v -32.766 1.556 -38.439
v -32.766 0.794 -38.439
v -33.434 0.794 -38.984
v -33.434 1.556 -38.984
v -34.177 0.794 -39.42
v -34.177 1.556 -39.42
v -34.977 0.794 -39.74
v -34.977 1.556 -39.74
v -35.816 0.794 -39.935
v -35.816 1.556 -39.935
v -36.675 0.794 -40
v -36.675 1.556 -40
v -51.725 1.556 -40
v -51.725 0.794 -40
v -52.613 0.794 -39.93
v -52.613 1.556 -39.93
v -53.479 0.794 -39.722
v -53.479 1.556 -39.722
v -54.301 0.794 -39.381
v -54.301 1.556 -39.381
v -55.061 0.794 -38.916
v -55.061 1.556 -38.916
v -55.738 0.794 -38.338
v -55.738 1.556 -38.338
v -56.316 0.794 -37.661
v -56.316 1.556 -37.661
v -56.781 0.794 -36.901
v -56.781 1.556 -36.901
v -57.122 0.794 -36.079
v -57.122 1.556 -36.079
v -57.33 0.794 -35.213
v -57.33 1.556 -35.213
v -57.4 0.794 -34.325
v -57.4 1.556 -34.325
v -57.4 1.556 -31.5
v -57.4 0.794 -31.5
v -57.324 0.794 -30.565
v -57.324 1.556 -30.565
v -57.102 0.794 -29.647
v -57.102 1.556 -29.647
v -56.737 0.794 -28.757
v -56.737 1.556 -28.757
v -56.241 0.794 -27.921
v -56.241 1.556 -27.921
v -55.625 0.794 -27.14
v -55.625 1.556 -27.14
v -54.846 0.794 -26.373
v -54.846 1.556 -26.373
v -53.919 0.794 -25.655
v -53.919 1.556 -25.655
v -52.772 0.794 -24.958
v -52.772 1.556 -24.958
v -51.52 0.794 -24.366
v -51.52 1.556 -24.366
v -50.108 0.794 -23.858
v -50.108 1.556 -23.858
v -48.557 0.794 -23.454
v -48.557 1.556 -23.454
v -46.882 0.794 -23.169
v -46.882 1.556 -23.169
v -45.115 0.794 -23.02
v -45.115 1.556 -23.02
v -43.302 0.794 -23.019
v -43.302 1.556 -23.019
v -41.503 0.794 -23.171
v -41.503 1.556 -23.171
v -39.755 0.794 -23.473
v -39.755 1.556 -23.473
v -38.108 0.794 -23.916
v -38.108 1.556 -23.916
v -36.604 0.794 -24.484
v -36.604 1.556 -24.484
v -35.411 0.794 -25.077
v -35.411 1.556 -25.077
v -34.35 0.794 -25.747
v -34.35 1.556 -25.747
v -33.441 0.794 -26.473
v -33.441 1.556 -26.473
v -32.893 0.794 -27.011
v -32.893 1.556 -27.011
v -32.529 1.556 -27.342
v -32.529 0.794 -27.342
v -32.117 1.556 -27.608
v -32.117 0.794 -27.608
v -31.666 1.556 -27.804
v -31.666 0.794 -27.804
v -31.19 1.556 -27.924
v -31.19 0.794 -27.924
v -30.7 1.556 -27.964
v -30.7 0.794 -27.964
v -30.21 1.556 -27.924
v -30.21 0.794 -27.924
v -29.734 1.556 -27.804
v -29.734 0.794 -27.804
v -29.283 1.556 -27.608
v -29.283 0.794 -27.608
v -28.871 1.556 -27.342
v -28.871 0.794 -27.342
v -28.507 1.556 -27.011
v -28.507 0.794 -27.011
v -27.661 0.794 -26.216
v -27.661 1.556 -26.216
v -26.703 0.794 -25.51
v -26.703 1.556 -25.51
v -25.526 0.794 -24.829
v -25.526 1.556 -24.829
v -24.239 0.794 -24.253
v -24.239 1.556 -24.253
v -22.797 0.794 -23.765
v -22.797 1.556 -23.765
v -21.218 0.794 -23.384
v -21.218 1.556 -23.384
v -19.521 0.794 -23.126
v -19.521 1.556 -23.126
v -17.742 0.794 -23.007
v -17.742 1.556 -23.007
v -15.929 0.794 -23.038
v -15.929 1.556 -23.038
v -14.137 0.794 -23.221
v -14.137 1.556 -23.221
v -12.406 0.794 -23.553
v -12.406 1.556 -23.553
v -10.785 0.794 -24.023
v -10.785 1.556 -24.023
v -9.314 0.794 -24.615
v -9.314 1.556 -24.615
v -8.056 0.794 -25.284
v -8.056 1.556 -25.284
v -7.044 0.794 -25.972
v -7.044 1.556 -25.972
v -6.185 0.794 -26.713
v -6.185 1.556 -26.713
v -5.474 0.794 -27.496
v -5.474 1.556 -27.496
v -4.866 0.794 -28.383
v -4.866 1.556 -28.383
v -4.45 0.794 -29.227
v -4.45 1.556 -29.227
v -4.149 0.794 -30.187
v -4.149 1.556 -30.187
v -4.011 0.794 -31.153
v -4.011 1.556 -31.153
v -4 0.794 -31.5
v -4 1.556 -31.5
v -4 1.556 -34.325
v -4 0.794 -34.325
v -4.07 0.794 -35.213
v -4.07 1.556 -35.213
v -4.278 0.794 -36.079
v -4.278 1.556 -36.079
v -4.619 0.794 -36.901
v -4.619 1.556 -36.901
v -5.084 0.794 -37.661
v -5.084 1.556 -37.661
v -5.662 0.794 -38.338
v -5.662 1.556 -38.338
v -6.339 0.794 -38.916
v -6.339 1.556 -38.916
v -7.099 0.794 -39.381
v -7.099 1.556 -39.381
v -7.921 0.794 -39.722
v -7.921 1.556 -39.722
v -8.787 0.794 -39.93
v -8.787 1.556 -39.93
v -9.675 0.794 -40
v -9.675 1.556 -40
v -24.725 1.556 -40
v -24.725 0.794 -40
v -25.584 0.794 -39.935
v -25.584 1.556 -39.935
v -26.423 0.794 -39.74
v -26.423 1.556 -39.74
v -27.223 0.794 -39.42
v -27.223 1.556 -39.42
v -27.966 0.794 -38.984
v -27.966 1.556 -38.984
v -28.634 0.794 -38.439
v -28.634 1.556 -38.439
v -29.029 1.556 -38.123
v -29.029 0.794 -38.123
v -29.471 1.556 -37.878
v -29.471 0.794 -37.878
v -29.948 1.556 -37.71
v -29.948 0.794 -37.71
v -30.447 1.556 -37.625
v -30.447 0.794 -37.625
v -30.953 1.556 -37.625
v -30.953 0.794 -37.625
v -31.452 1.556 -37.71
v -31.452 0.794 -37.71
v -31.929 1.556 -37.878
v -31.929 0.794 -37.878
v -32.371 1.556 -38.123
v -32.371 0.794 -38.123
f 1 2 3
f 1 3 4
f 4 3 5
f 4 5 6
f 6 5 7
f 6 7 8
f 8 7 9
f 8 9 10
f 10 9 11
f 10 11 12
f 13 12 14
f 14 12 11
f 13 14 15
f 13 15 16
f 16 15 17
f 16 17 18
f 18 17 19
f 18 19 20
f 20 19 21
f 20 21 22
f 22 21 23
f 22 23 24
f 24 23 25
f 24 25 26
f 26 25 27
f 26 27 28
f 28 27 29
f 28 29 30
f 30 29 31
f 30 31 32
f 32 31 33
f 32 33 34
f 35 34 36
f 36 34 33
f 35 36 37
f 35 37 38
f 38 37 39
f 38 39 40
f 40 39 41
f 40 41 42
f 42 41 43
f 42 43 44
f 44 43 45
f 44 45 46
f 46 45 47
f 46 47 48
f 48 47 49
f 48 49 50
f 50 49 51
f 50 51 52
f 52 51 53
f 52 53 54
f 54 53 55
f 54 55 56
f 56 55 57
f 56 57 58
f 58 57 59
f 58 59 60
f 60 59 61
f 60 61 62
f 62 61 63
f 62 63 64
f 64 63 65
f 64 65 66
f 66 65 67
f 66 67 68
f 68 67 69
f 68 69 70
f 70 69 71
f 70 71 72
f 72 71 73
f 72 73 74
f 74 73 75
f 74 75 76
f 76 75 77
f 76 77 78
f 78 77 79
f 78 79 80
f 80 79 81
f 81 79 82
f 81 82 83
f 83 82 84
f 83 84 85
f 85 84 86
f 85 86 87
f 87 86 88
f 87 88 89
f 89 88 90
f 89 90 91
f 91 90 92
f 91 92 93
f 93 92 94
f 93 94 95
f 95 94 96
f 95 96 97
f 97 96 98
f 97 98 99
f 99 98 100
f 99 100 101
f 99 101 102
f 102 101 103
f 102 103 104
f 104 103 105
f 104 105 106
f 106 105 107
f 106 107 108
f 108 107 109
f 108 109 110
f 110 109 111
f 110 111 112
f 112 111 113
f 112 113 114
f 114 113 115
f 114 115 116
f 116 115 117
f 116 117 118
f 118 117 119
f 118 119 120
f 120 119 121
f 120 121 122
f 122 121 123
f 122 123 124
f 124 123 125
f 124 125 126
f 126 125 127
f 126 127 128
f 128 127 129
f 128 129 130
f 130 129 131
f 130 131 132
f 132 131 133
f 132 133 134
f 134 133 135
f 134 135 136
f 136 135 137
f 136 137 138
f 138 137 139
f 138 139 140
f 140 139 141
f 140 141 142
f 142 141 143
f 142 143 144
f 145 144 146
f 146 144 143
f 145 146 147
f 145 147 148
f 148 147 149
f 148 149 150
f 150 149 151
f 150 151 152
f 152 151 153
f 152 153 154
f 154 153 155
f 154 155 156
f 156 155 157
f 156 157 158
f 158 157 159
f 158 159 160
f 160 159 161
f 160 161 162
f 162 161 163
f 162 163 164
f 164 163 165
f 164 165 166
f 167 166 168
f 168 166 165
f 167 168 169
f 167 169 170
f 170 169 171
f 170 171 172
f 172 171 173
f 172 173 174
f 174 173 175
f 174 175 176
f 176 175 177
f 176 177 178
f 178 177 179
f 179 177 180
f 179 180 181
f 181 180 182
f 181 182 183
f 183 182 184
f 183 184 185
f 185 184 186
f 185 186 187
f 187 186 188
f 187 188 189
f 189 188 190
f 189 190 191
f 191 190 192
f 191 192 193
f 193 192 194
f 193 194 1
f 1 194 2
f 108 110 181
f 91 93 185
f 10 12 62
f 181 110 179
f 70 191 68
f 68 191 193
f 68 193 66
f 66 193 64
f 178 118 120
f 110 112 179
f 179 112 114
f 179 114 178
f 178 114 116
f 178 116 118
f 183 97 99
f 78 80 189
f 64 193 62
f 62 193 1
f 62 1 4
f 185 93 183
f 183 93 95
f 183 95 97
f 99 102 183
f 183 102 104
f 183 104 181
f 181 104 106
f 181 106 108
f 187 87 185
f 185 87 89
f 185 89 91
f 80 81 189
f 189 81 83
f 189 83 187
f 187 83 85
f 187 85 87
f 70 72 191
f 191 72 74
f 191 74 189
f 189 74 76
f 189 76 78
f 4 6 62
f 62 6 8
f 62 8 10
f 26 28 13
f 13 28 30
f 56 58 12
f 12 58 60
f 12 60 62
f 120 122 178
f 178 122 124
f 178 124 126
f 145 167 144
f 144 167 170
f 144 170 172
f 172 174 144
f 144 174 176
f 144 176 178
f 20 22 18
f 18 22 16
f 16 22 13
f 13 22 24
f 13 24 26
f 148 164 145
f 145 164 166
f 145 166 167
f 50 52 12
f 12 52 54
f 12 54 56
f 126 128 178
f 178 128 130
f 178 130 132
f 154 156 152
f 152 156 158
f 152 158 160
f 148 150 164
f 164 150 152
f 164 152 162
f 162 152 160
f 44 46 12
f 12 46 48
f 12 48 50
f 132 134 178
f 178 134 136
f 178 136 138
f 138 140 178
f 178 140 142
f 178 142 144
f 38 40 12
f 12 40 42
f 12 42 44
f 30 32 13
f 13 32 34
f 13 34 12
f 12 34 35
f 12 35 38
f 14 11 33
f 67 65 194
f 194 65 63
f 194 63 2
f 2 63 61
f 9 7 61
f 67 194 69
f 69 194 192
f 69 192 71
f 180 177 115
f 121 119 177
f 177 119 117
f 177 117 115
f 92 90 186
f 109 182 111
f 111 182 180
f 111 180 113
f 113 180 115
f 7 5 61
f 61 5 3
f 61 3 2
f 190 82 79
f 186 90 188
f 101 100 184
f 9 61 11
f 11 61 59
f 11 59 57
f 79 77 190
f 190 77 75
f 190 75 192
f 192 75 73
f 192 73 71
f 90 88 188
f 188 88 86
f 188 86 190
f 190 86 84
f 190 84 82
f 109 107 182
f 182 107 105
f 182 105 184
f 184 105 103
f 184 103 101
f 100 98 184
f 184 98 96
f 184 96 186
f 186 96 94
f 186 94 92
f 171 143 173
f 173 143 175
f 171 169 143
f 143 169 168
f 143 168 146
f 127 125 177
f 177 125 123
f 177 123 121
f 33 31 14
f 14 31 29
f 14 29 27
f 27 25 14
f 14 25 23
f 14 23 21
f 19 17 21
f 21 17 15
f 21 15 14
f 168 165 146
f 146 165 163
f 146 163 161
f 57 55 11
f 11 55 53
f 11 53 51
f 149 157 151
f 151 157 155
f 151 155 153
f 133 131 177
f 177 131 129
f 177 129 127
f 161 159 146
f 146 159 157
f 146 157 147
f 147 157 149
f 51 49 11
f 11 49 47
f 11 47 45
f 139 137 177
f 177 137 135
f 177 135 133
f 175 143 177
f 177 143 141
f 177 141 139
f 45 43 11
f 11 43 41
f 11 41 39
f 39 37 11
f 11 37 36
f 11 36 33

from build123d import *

# Parameters (mm, degrees)
SKETCH4_W                      = 118.3
SKETCH4_H                      = 40.5
BOSS_EXTRUDE1_DEPTH            = 12.7
CUT_EXTRUDE1_DEPTH             = 75.078168174
FILLET1_R                      = 3.175
LPATTERN1_COUNT                = 2
LPATTERN1_PITCH                = 27
FILLET1_OF_LPATTERN1_R         = 3.175
MIRROR1_DEPTH                  = 12.7
SKETCH8_R                      = 0.85
CUT_EXTRUDE2_DEPTH             = 75.078168329
MIRROR3_COPY_1_SKETCH_R        = 0.85
MIRROR3_COPY_1_DEPTH           = 75.078168329
SKETCH14_W                     = 118.3
SKETCH14_H                     = 0.96
SKETCH14_W_2                   = 4.5
SKETCH14_H_2                   = 40.5
CUT_EXTRUDE7_DEPTH             = 0.1
CUT_EXTRUDE8_DEPTH             = 2.35
MIRROR14_COPY_1_DEPTH          = 2.35
MIRROR16_COPY_1_DEPTH          = 2.35
MIRROR16_COPY_2_DEPTH          = 2.35
MIRROR16_COPY_3_DEPTH          = 2.35
CUT_EXTRUDE10_DEPTH            = 75.061089804
SKETCH20_W                     = 127.8
SKETCH20_H                     = 85.5
BOSS_EXTRUDE2_DEPTH            = 3.175
SKETCH22_W                     = 127.8
SKETCH22_H                     = 85.5
CUT_EXTRUDE11_DEPTH            = 78.923440062
CUT_EXTRUDE12_DEPTH            = 77.947080029
F_0_80_TAPPED_HOLE1_D          = 1.19126
MIRROR19_COPY_1_DEPTH          = 77.947080029
MIRROR19_COPY_2_D              = 1.19126
SKETCH26_W                     = 127.8
SKETCH26_H                     = 0.96
CUT_EXTRUDE13_DEPTH            = 3.175
SKETCH27_W                     = 127.8
SKETCH27_H                     = 0.96
CUT_EXTRUDE14_DEPTH            = 3.175
SKETCH29_W                     = 3.175
SKETCH29_H                     = 19.77
CUT_EXTRUDE15_DEPTH            = 0.82
F_0_80_TAPPED_HOLE2_AT_2_COUNT = 2
F_0_80_TAPPED_HOLE2_AT_2_PITCH = 10
SKETCH36_R                     = 0.8
CUT_EXTRUDE16_DEPTH            = 10
FILLET2_R                      = 1.5
FILLET3_R                      = 1.5
F_0_80_TAPPED_HOLE5_AT_2_COUNT = 2
F_0_80_TAPPED_HOLE5_AT_2_PITCH = 10
BOSS_EXTRUDE3_DEPTH            = 0.79375
SKETCH39_W                     = 144.663992048
SKETCH39_H                     = 99.796260463
CUT_EXTRUDE17_DEPTH            = 10
BOSS_EXTRUDE4_DEPTH            = 0.762
SKETCH42_W                     = 65.404927097
SKETCH42_H                     = 32.798348424
CUT_EXTRUDE18_DEPTH            = 10.762


# Read off the part's stored shape, not the designer's step: Mirror1
with BuildPart() as part:
    # Sketch4 → Boss-Extrude1 (new body)
    with BuildSketch(Plane(origin=(0, 0, 0), x_dir=(1, 0, 0), z_dir=(0, 1, 0))):
        with Locations((0, 22.5)):
            Rectangle(SKETCH4_W, SKETCH4_H)
    extrude(amount=BOSS_EXTRUDE1_DEPTH)

    # Sketch5 → Cut-Extrude1 (cut, through all)
    with BuildSketch(Plane(origin=(0, 12.7, 0), x_dir=(1, 0, 0), z_dir=(0, 1, 0))):
        with BuildLine():
            Line((-54.9, 13.5), (-54.9, 7.5))
            Line((-54.9, 7.5), (-33.5, 7.5))
            Line((-33.5, 7.5), (-33.5, 13.5))
            add(Edge.make_bspline(
                [(-33.5, 13.5), (-33.5, 19.5), (-44.2, 19.5), (-54.9, 19.5), (-54.9, 13.5)],
                knots=[3.141592654, 3.141592654, 3.141592654, 4.71238898, 4.71238898, 6.283185307, 6.283185307, 6.283185307], degree=2, weights=[1, 0.707106781, 1, 0.707106781, 1]))
        make_face()
        with BuildLine():
            Line((-54.9, 37.5), (-33.5, 37.5))
            Line((-33.5, 37.5), (-33.5, 31.5))
            add(Edge.make_bspline(
                [(-54.9, 31.5), (-54.9, 25.5), (-44.2, 25.5), (-33.5, 25.5), (-33.5, 31.5)],
                knots=[0, 0, 0, 1.570796327, 1.570796327, 3.141592654, 3.141592654, 3.141592654], degree=2, weights=[1, 0.707106781, 1, 0.707106781, 1]))
            Line((-54.9, 31.5), (-54.9, 37.5))
        make_face()
    cut_extrude1 = extrude(amount=-CUT_EXTRUDE1_DEPTH, mode=Mode.SUBTRACT)

    # Fillet1
    fillet1_edges = [part.edges().sort_by_distance(p)[0] for p in [
        (-33.5, 6.35, -7.5),
        (-54.9, 6.35, -7.5),
        (-54.9, 6.35, -37.5),
        (-33.5, 6.35, -37.5),
    ]]
    fillet(fillet1_edges, radius=FILLET1_R)

    # LPattern1: Cut-Extrude1 ×2
    with Locations(*[(i * LPATTERN1_PITCH, 0, 0) for i in range(1, LPATTERN1_COUNT)]):
        add(cut_extrude1, mode=Mode.SUBTRACT)

    # Fillet1 of LPattern1
    fillet1_of_lpattern1_edges = [part.edges().sort_by_distance(p)[0] for p in [
        (-6.5, 6.35, -7.5),
        (-27.9, 6.35, -7.5),
        (-27.9, 6.35, -37.5),
        (-6.5, 6.35, -37.5),
    ]]
    fillet(fillet1_of_lpattern1_edges, radius=FILLET1_OF_LPATTERN1_R)

    # Mirror1 outline → Mirror1 (cut)
    with BuildSketch(Plane(origin=(0, 0, 0), x_dir=(1, 0, 0), z_dir=(0, 1, 0))):
        with BuildLine():
            add(Edge.make_bspline(
                [(33.5, 13.5), (33.5, 19.5), (44.2, 19.5), (54.9, 19.5), (54.9, 13.5)],
                knots=[3.141592654, 3.141592654, 3.141592654, 4.71238898, 4.71238898, 6.283185307, 6.283185307, 6.283185307], degree=2, weights=[1, 0.707106781, 1, 0.707106781, 1]))
            Line((33.5, 13.5), (33.5, 10.675))
            ThreePointArc((33.5, 10.675), (34.42993597, 8.42993597), (36.675, 7.5))
            Line((36.675, 7.5), (51.725, 7.5))
            ThreePointArc((51.725, 7.5), (53.97006403, 8.42993597), (54.9, 10.675))
            Line((54.9, 10.675), (54.9, 13.5))
        make_face()
        with BuildLine():
            add(Edge.make_bspline(
                [(54.9, 31.5), (54.9, 25.5), (44.2, 25.5), (33.5, 25.5), (33.5, 31.5)],
                knots=[0, 0, 0, 1.570796327, 1.570796327, 3.141592654, 3.141592654, 3.141592654], degree=2, weights=[1, 0.707106781, 1, 0.707106781, 1]))
            Line((54.9, 31.5), (54.9, 34.325))
            ThreePointArc((54.9, 34.325), (53.97006403, 36.57006403), (51.725, 37.5))
            Line((51.725, 37.5), (36.675, 37.5))
            ThreePointArc((36.675, 37.5), (34.42993597, 36.57006403), (33.5, 34.325))
            Line((33.5, 34.325), (33.5, 31.5))
        make_face()
        with BuildLine():
            add(Edge.make_bspline(
                [(6.5, 13.5), (6.5, 19.5), (17.2, 19.5), (27.9, 19.5), (27.9, 13.5)],
                knots=[3.141592654, 3.141592654, 3.141592654, 4.71238898, 4.71238898, 6.283185307, 6.283185307, 6.283185307], degree=2, weights=[1, 0.707106781, 1, 0.707106781, 1]))
            Line((6.5, 13.5), (6.5, 10.675))
            ThreePointArc((6.5, 10.675), (7.42993597, 8.42993597), (9.675, 7.5))
            Line((9.675, 7.5), (24.725, 7.5))
            ThreePointArc((24.725, 7.5), (26.97006403, 8.42993597), (27.9, 10.675))
            Line((27.9, 10.675), (27.9, 13.5))
        make_face()
        with BuildLine():
            add(Edge.make_bspline(
                [(27.9, 31.5), (27.9, 25.5), (17.2, 25.5), (6.5, 25.5), (6.5, 31.5)],
                knots=[0, 0, 0, 1.570796327, 1.570796327, 3.141592654, 3.141592654, 3.141592654], degree=2, weights=[1, 0.707106781, 1, 0.707106781, 1]))
            Line((27.9, 31.5), (27.9, 34.325))
            ThreePointArc((27.9, 34.325), (26.97006403, 36.57006403), (24.725, 37.5))
            Line((24.725, 37.5), (9.675, 37.5))
            ThreePointArc((9.675, 37.5), (7.42993597, 36.57006403), (6.5, 34.325))
            Line((6.5, 34.325), (6.5, 31.5))
        make_face()
    extrude(amount=MIRROR1_DEPTH, mode=Mode.SUBTRACT)

    # Sketch8 → Cut-Extrude2 (cut, through all)
    with BuildSketch(Plane(origin=(0, 12.7, 0), x_dir=(1, 0, 0), z_dir=(0, 1, 0))):
        with Locations(Location((-57.15, 40.75, 0), (0, 0, 270))):
            Circle(SKETCH8_R)
        with Locations(Location((-30.7, 40.75, 0), (0, 0, 270))):
            Circle(SKETCH8_R)
        with Locations(Location((-4.25, 40.75, 0), (0, 0, 270))):
            Circle(SKETCH8_R)
        with Locations(Location((-4.25, 24.98, 0), (0, 0, 270))):
            Circle(SKETCH8_R)
        with Locations(Location((-30.7, 24.98, 0), (0, 0, 270))):
            Circle(SKETCH8_R)
        with Locations(Location((-57.15, 24.98, 0), (0, 0, 270))):
            Circle(SKETCH8_R)
    cut_extrude2 = extrude(amount=-CUT_EXTRUDE2_DEPTH, mode=Mode.SUBTRACT)

    # Mirror2: Cut-Extrude2 across plane
    add(cut_extrude2.mirror(Plane.XY.offset(-22.5)), mode=Mode.SUBTRACT)

    # Mirror3: Cut-Extrude2 across plane
    add(cut_extrude2.mirror(Plane(origin=(0, 0, 0), x_dir=(0, 0, 1), z_dir=(1, 0, 0))), mode=Mode.SUBTRACT)

    # Mirror3 copy 1 sketch → Mirror3 copy 1 (cut, through all)
    with BuildSketch(Plane(origin=(0, 12.7, -45), x_dir=(-1, 0, 0), z_dir=(0, 1, 0))):
        with Locations(Location((-57.15, 40.75, 0), (0, 0, 270))):
            Circle(MIRROR3_COPY_1_SKETCH_R)
        with Locations(Location((-30.7, 40.75, 0), (0, 0, 270))):
            Circle(MIRROR3_COPY_1_SKETCH_R)
        with Locations(Location((-4.25, 40.75, 0), (0, 0, 270))):
            Circle(MIRROR3_COPY_1_SKETCH_R)
        with Locations(Location((-4.25, 24.98, 0), (0, 0, 270))):
            Circle(MIRROR3_COPY_1_SKETCH_R)
        with Locations(Location((-30.7, 24.98, 0), (0, 0, 270))):
            Circle(MIRROR3_COPY_1_SKETCH_R)
        with Locations(Location((-57.15, 24.98, 0), (0, 0, 270))):
            Circle(MIRROR3_COPY_1_SKETCH_R)
    extrude(amount=-MIRROR3_COPY_1_DEPTH, mode=Mode.SUBTRACT)

    # Sketch14 → Cut-Extrude7 (cut)
    with BuildSketch(Plane(origin=(0, 12.7, 0), x_dir=(1, 0, 0), z_dir=(0, 1, 0))):
        with Locations((0, 22.5)):
            Rectangle(SKETCH14_W, SKETCH14_H)
        with Locations((0, 22.5)):
            Rectangle(SKETCH14_W_2, SKETCH14_H_2)
    extrude(amount=-CUT_EXTRUDE7_DEPTH, mode=Mode.SUBTRACT)

    # Sketch15 → Cut-Extrude8 (cut)
    with BuildSketch(Plane(origin=(0, 12.7, 0), x_dir=(1, 0, 0), z_dir=(0, 1, 0))):
        with BuildLine():
            Line((-33.875, 42.75), (-27.525, 42.75))
            Line((-27.525, 42.75), (-27.525, 41.5))
            ThreePointArc((-27.525, 41.5), (-30.7, 38.325), (-33.875, 41.5))
            Line((-33.875, 41.5), (-33.875, 42.75))
        make_face()
        with BuildLine():
            Line((-2.25, 42.75), (-6.675, 42.75))
            Line((-6.675, 42.75), (-6.675, 41.5))
            ThreePointArc((-6.675, 41.5), (-5.74506403, 39.25493597), (-3.5, 38.325))
            Line((-3.5, 38.325), (-2.25, 38.325))
            Line((-2.25, 38.325), (-2.25, 42.75))
        make_face()
        with BuildLine():
            Line((-59.15, 42.75), (-54.725, 42.75))
            Line((-54.725, 42.75), (-54.725, 41.5))
            ThreePointArc((-54.725, 41.5), (-55.65493597, 39.25493597), (-57.9, 38.325))
            Line((-57.9, 38.325), (-59.15, 38.325))
            Line((-59.15, 38.325), (-59.15, 42.75))
        make_face()
    cut_extrude8 = extrude(amount=-CUT_EXTRUDE8_DEPTH, mode=Mode.SUBTRACT)

    # Mirror6: Cut-Extrude8 across plane
    add(cut_extrude8.mirror(Plane(origin=(0, 0, -32.865), x_dir=(1, 0, 0), z_dir=(0, 0, -1))), mode=Mode.SUBTRACT)

    # Mirror14: Cut-Extrude8 across plane
    add(cut_extrude8.mirror(Plane(origin=(0, 0, 0), x_dir=(0, 0, 1), z_dir=(1, 0, 0))), mode=Mode.SUBTRACT)

    # Mirror14 copy 1 sketch → Mirror14 copy 1 (cut)
    with BuildSketch(Plane(origin=(0, 12.7, -65.73), x_dir=(-1, 0, 0), z_dir=(0, 1, 0))):
        with BuildLine():
            Line((-33.875, 42.75), (-27.525, 42.75))
            Line((-27.525, 42.75), (-27.525, 41.5))
            ThreePointArc((-27.525, 41.5), (-30.7, 38.325), (-33.875, 41.5))
            Line((-33.875, 41.5), (-33.875, 42.75))
        make_face()
        with BuildLine():
            Line((-2.25, 42.75), (-6.675, 42.75))
            Line((-6.675, 42.75), (-6.675, 41.5))
            ThreePointArc((-6.675, 41.5), (-5.74506403, 39.25493597), (-3.5, 38.325))
            Line((-3.5, 38.325), (-2.25, 38.325))
            Line((-2.25, 38.325), (-2.25, 42.75))
        make_face()
        with BuildLine():
            Line((-59.15, 42.75), (-54.725, 42.75))
            Line((-54.725, 42.75), (-54.725, 41.5))
            ThreePointArc((-54.725, 41.5), (-55.65493597, 39.25493597), (-57.9, 38.325))
            Line((-57.9, 38.325), (-59.15, 38.325))
            Line((-59.15, 38.325), (-59.15, 42.75))
        make_face()
    extrude(amount=-MIRROR14_COPY_1_DEPTH, mode=Mode.SUBTRACT)

    # Mirror16: Cut-Extrude8 across plane
    add(cut_extrude8.mirror(Plane.XY.offset(-22.5)), mode=Mode.SUBTRACT)

    # Mirror16 copy 1 sketch → Mirror16 copy 1 (cut)
    with BuildSketch(Plane(origin=(0, 12.7, 20.73), x_dir=(1, 0, 0), z_dir=(0, 1, 0))):
        with BuildLine():
            Line((-33.875, 42.75), (-27.525, 42.75))
            Line((-27.525, 42.75), (-27.525, 41.5))
            ThreePointArc((-27.525, 41.5), (-30.7, 38.325), (-33.875, 41.5))
            Line((-33.875, 41.5), (-33.875, 42.75))
        make_face()
        with BuildLine():
            Line((-2.25, 42.75), (-6.675, 42.75))
            Line((-6.675, 42.75), (-6.675, 41.5))
            ThreePointArc((-6.675, 41.5), (-5.74506403, 39.25493597), (-3.5, 38.325))
            Line((-3.5, 38.325), (-2.25, 38.325))
            Line((-2.25, 38.325), (-2.25, 42.75))
        make_face()
        with BuildLine():
            Line((-59.15, 42.75), (-54.725, 42.75))
            Line((-54.725, 42.75), (-54.725, 41.5))
            ThreePointArc((-54.725, 41.5), (-55.65493597, 39.25493597), (-57.9, 38.325))
            Line((-57.9, 38.325), (-59.15, 38.325))
            Line((-59.15, 38.325), (-59.15, 42.75))
        make_face()
    extrude(amount=-MIRROR16_COPY_1_DEPTH, mode=Mode.SUBTRACT)

    # Mirror16 copy 2 sketch → Mirror16 copy 2 (cut)
    with BuildSketch(Plane(origin=(0, 12.7, -45), x_dir=(-1, 0, 0), z_dir=(0, 1, 0))):
        with BuildLine():
            Line((-33.875, 42.75), (-27.525, 42.75))
            Line((-27.525, 42.75), (-27.525, 41.5))
            ThreePointArc((-27.525, 41.5), (-30.7, 38.325), (-33.875, 41.5))
            Line((-33.875, 41.5), (-33.875, 42.75))
        make_face()
        with BuildLine():
            Line((-2.25, 42.75), (-6.675, 42.75))
            Line((-6.675, 42.75), (-6.675, 41.5))
            ThreePointArc((-6.675, 41.5), (-5.74506403, 39.25493597), (-3.5, 38.325))
            Line((-3.5, 38.325), (-2.25, 38.325))
            Line((-2.25, 38.325), (-2.25, 42.75))
        make_face()
        with BuildLine():
            Line((-59.15, 42.75), (-54.725, 42.75))
            Line((-54.725, 42.75), (-54.725, 41.5))
            ThreePointArc((-54.725, 41.5), (-55.65493597, 39.25493597), (-57.9, 38.325))
            Line((-57.9, 38.325), (-59.15, 38.325))
            Line((-59.15, 38.325), (-59.15, 42.75))
        make_face()
    extrude(amount=-MIRROR16_COPY_2_DEPTH, mode=Mode.SUBTRACT)

    # Mirror16 copy 3 sketch → Mirror16 copy 3 (cut)
    with BuildSketch(Plane(origin=(0, 12.7, 20.73), x_dir=(-1, 0, 0), z_dir=(0, 1, 0))):
        with BuildLine():
            Line((-33.875, -42.75), (-27.525, -42.75))
            Line((-27.525, -42.75), (-27.525, -41.5))
            ThreePointArc((-27.525, -41.5), (-30.7, -38.325), (-33.875, -41.5))
            Line((-33.875, -41.5), (-33.875, -42.75))
        make_face()
        with BuildLine():
            Line((-2.25, -42.75), (-6.675, -42.75))
            Line((-6.675, -42.75), (-6.675, -41.5))
            ThreePointArc((-6.675, -41.5), (-5.74506403, -39.25493597), (-3.5, -38.325))
            Line((-3.5, -38.325), (-2.25, -38.325))
            Line((-2.25, -38.325), (-2.25, -42.75))
        make_face()
        with BuildLine():
            Line((-59.15, -42.75), (-54.725, -42.75))
            Line((-54.725, -42.75), (-54.725, -41.5))
            ThreePointArc((-54.725, -41.5), (-55.65493597, -39.25493597), (-57.9, -38.325))
            Line((-57.9, -38.325), (-59.15, -38.325))
            Line((-59.15, -38.325), (-59.15, -42.75))
        make_face()
    extrude(amount=-MIRROR16_COPY_3_DEPTH, mode=Mode.SUBTRACT)

    # Sketch17 → Cut-Extrude10 (cut, through all)
    with BuildSketch(Plane(origin=(0, 12.6, 0), x_dir=(1, 0, 0), z_dir=(0, 1, 0))):
        Polygon((-54.725, 22.98), (-59.15, 22.98), (-59.15, 22.02), (-54.725, 22.02), (-33.875, 22.02), (-27.525, 22.02), (-6.675, 22.02), (-2.25, 22.02), (-2.25, 17.595), (-2.25, 6.675), (-2.25, 2.25), (2.25, 2.25), (2.25, 6.675), (2.25, 17.595), (2.25, 22.02), (6.675, 22.02), (27.525, 22.02), (33.875, 22.02), (54.725, 22.02), (59.15, 22.02), (59.15, 22.98), (54.725, 22.98), (33.875, 22.98), (27.525, 22.98), (6.675, 22.98), (2.25, 22.98), (2.25, 27.405), (2.25, 38.325), (2.25, 42.75), (-2.25, 42.75), (-2.25, 38.325), (-2.25, 27.405), (-2.25, 22.98), (-6.675, 22.98), (-27.525, 22.98), (-33.875, 22.98), align=None)
    extrude(amount=-CUT_EXTRUDE10_DEPTH, mode=Mode.SUBTRACT)


with BuildPart() as cut_extrude10_piece_1:
    # of the separate pieces the step leaves, piece 1, a body of its own (cut_extrude10_pieces)
    add(part.part.solids().sort_by_distance((59.15, 0, -22.02))[0])



with BuildPart() as cut_extrude10_piece_2:
    # of the separate pieces the step leaves, piece 2, a body of its own (cut_extrude10_pieces)
    add(part.part.solids().sort_by_distance((2.25, 0, -42.75))[0])


with BuildPart() as cut_extrude10_piece_3:
    # of the separate pieces the step leaves, piece 3, a body of its own (cut_extrude10_pieces)
    add(part.part.solids().sort_by_distance((-59.15, 0, -2.25))[0])


with BuildPart() as cut_extrude10_piece_4:
    # of the separate pieces the step leaves, piece 4, a body of its own (cut_extrude10_pieces)
    add(part.part.solids().sort_by_distance((-59.15, 0, -22.98))[0])


with BuildPart() as cut_extrude10_piece_1_1:
    add(cut_extrude10_piece_1.part)

    add(cut_extrude10_piece_2.part)  # Boss-Extrude2 merges Cut-Extrude10 piece 2

    add(cut_extrude10_piece_3.part)  # Boss-Extrude2 merges Cut-Extrude10 piece 3

    add(cut_extrude10_piece_4.part)  # Boss-Extrude2 merges Cut-Extrude10 piece 4
    # Sketch20 → Boss-Extrude2 (add)
    with BuildSketch(Plane(origin=(0, 0, 0), x_dir=(1, 0, 0), z_dir=(0, 1, 0))):
        Rectangle(SKETCH20_W, SKETCH20_H)
    extrude(amount=-BOSS_EXTRUDE2_DEPTH)

    # Sketch22 → Cut-Extrude11 (cut, through all)
    with BuildSketch(Plane(origin=(0, 0, 0), x_dir=(1, 0, 0), z_dir=(0, 1, 0))):
        Rectangle(SKETCH22_W, SKETCH22_H)
    extrude(amount=CUT_EXTRUDE11_DEPTH, mode=Mode.SUBTRACT)

    # Sketch23 → Cut-Extrude12 (cut, through all)
    with BuildSketch(Plane(origin=(0, 0, 0), x_dir=(1, 0, 0), z_dir=(0, 1, 0))):
        with BuildLine():
            Line((-36.675, 37.5), (-51.725, 37.5))
            ThreePointArc((-51.725, 37.5), (-53.97006403, 36.57006403), (-54.9, 34.325))
            Line((-54.9, 34.325), (-54.9, 31.5))
            add(Edge.make_bspline(
                [(-54.9, 31.5), (-54.9, 25.5), (-44.2, 25.5), (-33.5, 25.5), (-33.5, 31.5)],
                knots=[0, 0, 0, 1.570796327, 1.570796327, 3.141592654, 3.141592654, 3.141592654], degree=2, weights=[1, 0.707106781, 1, 0.707106781, 1]))
            Line((-33.5, 31.5), (-33.5, 34.325))
            ThreePointArc((-33.5, 34.325), (-34.42993597, 36.57006403), (-36.675, 37.5))
        make_face()
        with BuildLine():
            Line((-9.675, 37.5), (-24.725, 37.5))
            ThreePointArc((-24.725, 37.5), (-26.97006403, 36.57006403), (-27.9, 34.325))
            Line((-27.9, 34.325), (-27.9, 31.5))
            add(Edge.make_bspline(
                [(-27.9, 31.5), (-27.9, 25.5), (-17.2, 25.5), (-6.5, 25.5), (-6.5, 31.5)],
                knots=[0, 0, 0, 1.570796327, 1.570796327, 3.141592654, 3.141592654, 3.141592654], degree=2, weights=[1, 0.707106781, 1, 0.707106781, 1]))
            Line((-6.5, 31.5), (-6.5, 34.325))
            ThreePointArc((-6.5, 34.325), (-7.42993597, 36.57006403), (-9.675, 37.5))
        make_face()
        with BuildLine():
            Line((-54.9, 13.5), (-54.9, 10.675))
            ThreePointArc((-54.9, 10.675), (-53.97006403, 8.42993597), (-51.725, 7.5))
            Line((-51.725, 7.5), (-36.675, 7.5))
            ThreePointArc((-36.675, 7.5), (-34.42993597, 8.42993597), (-33.5, 10.675))
            Line((-33.5, 10.675), (-33.5, 13.5))
            add(Edge.make_bspline(
                [(-33.5, 13.5), (-33.5, 19.5), (-44.2, 19.5), (-54.9, 19.5), (-54.9, 13.5)],
                knots=[3.141592654, 3.141592654, 3.141592654, 4.71238898, 4.71238898, 6.283185307, 6.283185307, 6.283185307], degree=2, weights=[1, 0.707106781, 1, 0.707106781, 1]))
        make_face()
        with BuildLine():
            Line((-27.9, 13.5), (-27.9, 10.675))
            ThreePointArc((-27.9, 10.675), (-26.97006403, 8.42993597), (-24.725, 7.5))
            Line((-24.725, 7.5), (-9.675, 7.5))
            ThreePointArc((-9.675, 7.5), (-7.42993597, 8.42993597), (-6.5, 10.675))
            Line((-6.5, 10.675), (-6.5, 13.5))
            add(Edge.make_bspline(
                [(-6.5, 13.5), (-6.5, 19.5), (-17.2, 19.5), (-27.9, 19.5), (-27.9, 13.5)],
                knots=[3.141592654, 3.141592654, 3.141592654, 4.71238898, 4.71238898, 6.283185307, 6.283185307, 6.283185307], degree=2, weights=[1, 0.707106781, 1, 0.707106781, 1]))
        make_face()
    cut_extrude12 = extrude(amount=-CUT_EXTRUDE12_DEPTH, mode=Mode.SUBTRACT)

    # #0-80 Tapped Hole1 (through all)
    with Locations(Plane(origin=(0, 0, 0), x_dir=(1, 0, 0), z_dir=(0, 1, 0))):
        with Locations((-57.15, 40.75), (-30.7, 40.75), (-4.25, 40.75), (-4.25, 24.98), (-30.7, 24.98), (-30.7, 20.02), (-57.15, 24.98), (-57.15, 20.02), (-4.25, 20.02), (-4.25, 4.25), (-30.7, 4.25), (-57.15, 4.25)):
            f_0_80_tapped_hole1 = Hole(F_0_80_TAPPED_HOLE1_D / 2)

    # Mirror18: Cut-Extrude12, #0-80 Tapped Hole1 across plane
    add(cut_extrude12.mirror(Plane(origin=(0, 0, 0), x_dir=(0, 0, 1), z_dir=(1, 0, 0))), mode=Mode.SUBTRACT)
    add(f_0_80_tapped_hole1.mirror(Plane(origin=(0, 0, 0), x_dir=(0, 0, 1), z_dir=(1, 0, 0))), mode=Mode.SUBTRACT)

    # Mirror19: Cut-Extrude12, #0-80 Tapped Hole1 across plane
    add(cut_extrude12.mirror(Plane(origin=(0, 0, 0), x_dir=(1, 0, 0), z_dir=(0, 0, -1))), mode=Mode.SUBTRACT)
    add(f_0_80_tapped_hole1.mirror(Plane(origin=(0, 0, 0), x_dir=(1, 0, 0), z_dir=(0, 0, -1))), mode=Mode.SUBTRACT)

    # Mirror19 copy 1 sketch → Mirror19 copy 1 (cut, through all)
    with BuildSketch(Plane(origin=(0, 0, 0), x_dir=(-1, 0, 0), z_dir=(0, 1, 0))):
        with BuildLine():
            Line((-36.675, 37.5), (-51.725, 37.5))
            ThreePointArc((-51.725, 37.5), (-53.97006403, 36.57006403), (-54.9, 34.325))
            Line((-54.9, 34.325), (-54.9, 31.5))
            add(Edge.make_bspline(
                [(-54.9, 31.5), (-54.9, 25.5), (-44.2, 25.5), (-33.5, 25.5), (-33.5, 31.5)],
                knots=[0, 0, 0, 1.570796327, 1.570796327, 3.141592654, 3.141592654, 3.141592654], degree=2, weights=[1, 0.707106781, 1, 0.707106781, 1]))
            Line((-33.5, 31.5), (-33.5, 34.325))
            ThreePointArc((-33.5, 34.325), (-34.42993597, 36.57006403), (-36.675, 37.5))
        make_face()
        with BuildLine():
            Line((-9.675, 37.5), (-24.725, 37.5))
            ThreePointArc((-24.725, 37.5), (-26.97006403, 36.57006403), (-27.9, 34.325))
            Line((-27.9, 34.325), (-27.9, 31.5))
            add(Edge.make_bspline(
                [(-27.9, 31.5), (-27.9, 25.5), (-17.2, 25.5), (-6.5, 25.5), (-6.5, 31.5)],
                knots=[0, 0, 0, 1.570796327, 1.570796327, 3.141592654, 3.141592654, 3.141592654], degree=2, weights=[1, 0.707106781, 1, 0.707106781, 1]))
            Line((-6.5, 31.5), (-6.5, 34.325))
            ThreePointArc((-6.5, 34.325), (-7.42993597, 36.57006403), (-9.675, 37.5))
        make_face()
        with BuildLine():
            Line((-54.9, 13.5), (-54.9, 10.675))
            ThreePointArc((-54.9, 10.675), (-53.97006403, 8.42993597), (-51.725, 7.5))
            Line((-51.725, 7.5), (-36.675, 7.5))
            ThreePointArc((-36.675, 7.5), (-34.42993597, 8.42993597), (-33.5, 10.675))
            Line((-33.5, 10.675), (-33.5, 13.5))
            add(Edge.make_bspline(
                [(-33.5, 13.5), (-33.5, 19.5), (-44.2, 19.5), (-54.9, 19.5), (-54.9, 13.5)],
                knots=[3.141592654, 3.141592654, 3.141592654, 4.71238898, 4.71238898, 6.283185307, 6.283185307, 6.283185307], degree=2, weights=[1, 0.707106781, 1, 0.707106781, 1]))
        make_face()
        with BuildLine():
            Line((-27.9, 13.5), (-27.9, 10.675))
            ThreePointArc((-27.9, 10.675), (-26.97006403, 8.42993597), (-24.725, 7.5))
            Line((-24.725, 7.5), (-9.675, 7.5))
            ThreePointArc((-9.675, 7.5), (-7.42993597, 8.42993597), (-6.5, 10.675))
            Line((-6.5, 10.675), (-6.5, 13.5))
            add(Edge.make_bspline(
                [(-6.5, 13.5), (-6.5, 19.5), (-17.2, 19.5), (-27.9, 19.5), (-27.9, 13.5)],
                knots=[3.141592654, 3.141592654, 3.141592654, 4.71238898, 4.71238898, 6.283185307, 6.283185307, 6.283185307], degree=2, weights=[1, 0.707106781, 1, 0.707106781, 1]))
        make_face()
    extrude(amount=-MIRROR19_COPY_1_DEPTH, mode=Mode.SUBTRACT)

    # Mirror19 copy 2 (through all)
    with Locations(Plane(origin=(0, 0, 0), x_dir=(-1, 0, 0), z_dir=(0, 1, 0))):
        with Locations((-57.15, 40.75), (-30.7, 40.75), (-4.25, 40.75), (-4.25, 24.98), (-30.7, 24.98), (-30.7, 20.02), (-57.15, 24.98), (-57.15, 20.02), (-4.25, 20.02), (-4.25, 4.25), (-30.7, 4.25), (-57.15, 4.25)):
            Hole(MIRROR19_COPY_2_D / 2)

    # Sketch26 → Cut-Extrude13 (cut)
    with BuildSketch(Plane(origin=(0, 0, 0), x_dir=(1, 0, 0), z_dir=(0, 1, 0))):
        with Locations((0, 22.5)):
            Rectangle(SKETCH26_W, SKETCH26_H)
    extrude(amount=-CUT_EXTRUDE13_DEPTH, mode=Mode.SUBTRACT)


with BuildPart() as cut_extrude13_piece_1:
    # of the separate pieces the step leaves, piece 1, a body of its own (cut_extrude13_pieces)
    add(cut_extrude10_piece_1_1.part.solids().sort_by_distance((63.9, 0, -22.02))[0])

    # Sketch27 → Cut-Extrude14 (cut)
    with BuildSketch(Plane(origin=(0, 0, 0), x_dir=(1, 0, 0), z_dir=(0, 1, 0))):
        with Locations((0, -22.5)):
            Rectangle(SKETCH27_W, SKETCH27_H)
    extrude(amount=-CUT_EXTRUDE14_DEPTH, mode=Mode.SUBTRACT)


with BuildPart() as cut_extrude13_piece_2:
    # of the separate pieces the step leaves, piece 2, a body of its own (cut_extrude13_pieces)
    add(cut_extrude10_piece_1_1.part.solids().sort_by_distance((-63.9, 0, -42.75))[0])


with BuildPart() as cut_extrude14_piece_1:
    # of the separate pieces the step leaves, piece 1, a body of its own (cut_extrude14_pieces)
    add(cut_extrude13_piece_1.part.solids().sort_by_distance((63.9, 0, -22.02))[0])

    # Sketch30 → #0-80 Tapped Hole2 (revolve, cut)
    with BuildSketch(Plane(origin=(62.3125, 0, -5), x_dir=(0, 0, 1), z_dir=(1, 0, 0))):
        Polygon((0, 0), (0, 8.287890611), (0.59563, 7.93), (0.59563, 0), align=None)
    f_0_80_tapped_hole2 = revolve(axis=Axis((62.3125, 6.35, -5), (0, -1, 0)), mode=Mode.SUBTRACT)

    # #0-80 Tapped Hole2 at 2: #0-80 Tapped Hole2 ×2
    with Locations(*[(0, 0, i * F_0_80_TAPPED_HOLE2_AT_2_PITCH) for i in range(1, F_0_80_TAPPED_HOLE2_AT_2_COUNT)]):
        add(f_0_80_tapped_hole2, mode=Mode.SUBTRACT)


with BuildPart() as cut_extrude14_piece_2:
    # of the separate pieces the step leaves, piece 2, a body of its own (cut_extrude14_pieces)
    add(cut_extrude13_piece_1.part.solids().sort_by_distance((63.9, 0, 22.98))[0])


with BuildPart() as cut_extrude15_tool:
    # Sketch29 → Cut-Extrude15 (new body)
    with BuildSketch(Plane.XZ.offset(3.175)):
        with Locations((62.3125, -32.865)):
            Rectangle(SKETCH29_W, SKETCH29_H)
        with Locations((62.3125, 32.865)):
            Rectangle(SKETCH29_W, SKETCH29_H)
    cut_extrude15 = extrude(amount=-CUT_EXTRUDE15_DEPTH)


with BuildPart() as cut_extrude13_piece_2_1:
    add(cut_extrude13_piece_2.part)

    # Cut-Extrude15: cut by cut_extrude15_tool
    add(cut_extrude15_tool.part, mode=Mode.SUBTRACT)


with BuildPart() as cut_extrude14_piece_2_1:
    add(cut_extrude14_piece_2.part)

    # Cut-Extrude15: cut by cut_extrude15_tool
    add(cut_extrude15_tool.part, mode=Mode.SUBTRACT)


with BuildPart() as cut_extrude16_tool:
    # Sketch36 → Cut-Extrude16 (new body)
    with BuildSketch(Plane.XZ.offset(2.355)):
        with Locations(Location((62.3125, 37.98, 0), (0, 0, 270))):
            Circle(SKETCH36_R)
        with Locations(Location((62.3125, 25.98, 0), (0, 0, 270))):
            Circle(SKETCH36_R)
        with Locations(Location((62.3125, -25.98, 0), (0, 0, 270))):
            Circle(SKETCH36_R)
        with Locations(Location((62.3125, -37.98, 0), (0, 0, 270))):
            Circle(SKETCH36_R)
    cut_extrude16 = extrude(amount=-CUT_EXTRUDE16_DEPTH)


with BuildPart() as cut_extrude13_piece_2_2:
    add(cut_extrude13_piece_2_1.part)

    # Cut-Extrude16: cut by cut_extrude16_tool
    add(cut_extrude16_tool.part, mode=Mode.SUBTRACT)


with BuildPart() as cut_extrude14_piece_2_2:
    add(cut_extrude14_piece_2_1.part)

    # Cut-Extrude16: cut by cut_extrude16_tool
    add(cut_extrude16_tool.part, mode=Mode.SUBTRACT)


with BuildPart() as mirror20_tool:
    # Mirror20: Cut-Extrude15, #0-80 Tapped Hole2, Cut-Extrude16 across plane
    add(cut_extrude15.mirror(Plane(origin=(0, 0, 0), x_dir=(0, 0, 1), z_dir=(1, 0, 0))))
    add(f_0_80_tapped_hole2.mirror(Plane(origin=(0, 0, 0), x_dir=(0, 0, 1), z_dir=(1, 0, 0))))
    add(cut_extrude16.mirror(Plane(origin=(0, 0, 0), x_dir=(0, 0, 1), z_dir=(1, 0, 0))))


with BuildPart() as cut_extrude13_piece_2_3:
    add(cut_extrude13_piece_2_2.part)

    # Mirror20: cut by mirror20_tool
    add(mirror20_tool.part, mode=Mode.SUBTRACT)

    # Fillet2
    fillet2_edges = [cut_extrude13_piece_2_3.edges().sort_by_distance(p)[0] for p in [
        (-63.9, -1.1775, -42.75),
        (63.9, -1.1775, -42.75),
    ]]
    fillet(fillet2_edges, radius=FILLET2_R)

    # Sketch28 → Boss-Extrude3 (add)
    with BuildSketch(Plane(origin=(0, 0, 0), x_dir=(1, 0, 0), z_dir=(0, 1, 0))):
        with BuildLine():
            Line((-36.675, 40), (-51.725, 40))
            ThreePointArc((-51.725, 40), (-55.737830983, 38.337830983), (-57.4, 34.325))
            Line((-57.4, 34.325), (-57.4, 31.5))
            add(Edge.make_bspline(
                [(-57.4, 31.5), (-57.4, 30.821154279), (-57.153175896, 29.447143081), (-56.167212938, 27.665270484), (-54.756272745, 26.202813776), (-52.455453984, 24.642995601), (-48.951428942, 23.350815489), (-44.2, 22.824592255), (-39.448571058, 23.350815489), (-35.944546016, 24.642995601), (-34.049903108, 25.927450724), (-33.266838465, 26.626794184), (-33.008008702, 26.88800086), (-32.892921678, 27.01127891)],
                knots=[0, 0, 0, 0, 0.196349541, 0.392699082, 0.589048623, 0.785398163, 1.178097245, 1.570796327, 1.963495408, 2.35619449, 2.552544031, 2.61024303, 2.659330415, 2.659330415, 2.659330415, 2.659330415], degree=3))
            ThreePointArc((-32.892921678, 27.01127891), (-30.7, 27.964062625), (-28.507078322, 27.01127891))
            add(Edge.make_bspline(
                [(-28.507078322, 27.01127891), (-28.391991298, 26.88800086), (-28.133161535, 26.626794184), (-27.350096892, 25.927450724), (-25.455453984, 24.642995601), (-21.951428942, 23.350815489), (-17.2, 22.824592255), (-12.448571058, 23.350815489), (-8.944546016, 24.642995601), (-6.643727255, 26.202813776), (-5.232787062, 27.665270484), (-4.246824104, 29.447143081), (-4, 30.821154279), (-4, 31.5)],
                knots=[0.482262239, 0.482262239, 0.482262239, 0.482262239, 0.531349624, 0.589048623, 0.785398163, 1.178097245, 1.570796327, 1.963495408, 2.35619449, 2.552544031, 2.748893572, 2.945243113, 3.141592654, 3.141592654, 3.141592654, 3.141592654], degree=3))
            Line((-4, 31.5), (-4, 34.325))
            ThreePointArc((-4, 34.325), (-5.662169017, 38.337830983), (-9.675, 40))
            Line((-9.675, 40), (-24.725, 40))
            ThreePointArc((-24.725, 40), (-26.829389725, 39.595405002), (-28.633717579, 38.439310621))
            ThreePointArc((-28.633717579, 38.439310621), (-30.7, 37.614276588), (-32.766282421, 38.439310621))
            ThreePointArc((-32.766282421, 38.439310621), (-34.570610275, 39.595405002), (-36.675, 40))
        make_face()
        with BuildLine():
            Line((-33.5, 31.5), (-33.5, 34.325))
            ThreePointArc((-33.5, 34.325), (-34.42993597, 36.57006403), (-36.675, 37.5))
            Line((-36.675, 37.5), (-51.725, 37.5))
            ThreePointArc((-51.725, 37.5), (-53.97006403, 36.57006403), (-54.9, 34.325))
            Line((-54.9, 34.325), (-54.9, 31.5))
            add(Edge.make_bspline(
                [(-54.9, 31.5), (-54.9, 25.5), (-44.2, 25.5), (-33.5, 25.5), (-33.5, 31.5)],
                knots=[0, 0, 0, 1.570796327, 1.570796327, 3.141592654, 3.141592654, 3.141592654], degree=2, weights=[1, 0.707106781, 1, 0.707106781, 1]))
        make_face(mode=Mode.SUBTRACT)
        with BuildLine():
            Line((-9.675, 37.5), (-24.725, 37.5))
            ThreePointArc((-24.725, 37.5), (-26.97006403, 36.57006403), (-27.9, 34.325))
            Line((-27.9, 34.325), (-27.9, 31.5))
            add(Edge.make_bspline(
                [(-27.9, 31.5), (-27.9, 25.5), (-17.2, 25.5), (-6.5, 25.5), (-6.5, 31.5)],
                knots=[0, 0, 0, 1.570796327, 1.570796327, 3.141592654, 3.141592654, 3.141592654], degree=2, weights=[1, 0.707106781, 1, 0.707106781, 1]))
            Line((-6.5, 31.5), (-6.5, 34.325))
            ThreePointArc((-6.5, 34.325), (-7.42993597, 36.57006403), (-9.675, 37.5))
        make_face(mode=Mode.SUBTRACT)
    extrude(amount=BOSS_EXTRUDE3_DEPTH)


with BuildPart() as cut_extrude14_piece_1_1:
    add(cut_extrude14_piece_1.part)

    # Mirror20: cut by mirror20_tool
    add(mirror20_tool.part, mode=Mode.SUBTRACT)

    # Mirror20 copy 1 sketch → Mirror20 copy 1 (revolve, cut)
    with BuildSketch(Plane(origin=(-62.3125, 0, 5), x_dir=(0, 0, 1), z_dir=(-1, 0, 0))):
        Polygon((0, 0), (0, -8.287890611), (0.59563, -7.93), (0.59563, 0), align=None)
    revolve(axis=Axis((-62.3125, 6.35, 5), (0, 1, 0)), mode=Mode.SUBTRACT)

    # Sketch37 → #0-80 Tapped Hole5 (revolve, cut)
    with BuildSketch(Plane(origin=(0, 0, -5), x_dir=(0, 0, 1), z_dir=(1, 0, 0))):
        Polygon((0, 0), (0, 8.287890611), (0.59563, 7.93), (0.59563, 0), align=None)
    f_0_80_tapped_hole5 = revolve(axis=Axis((0, 6.35, -5), (0, -1, 0)), mode=Mode.SUBTRACT)

    # #0-80 Tapped Hole5 at 2: #0-80 Tapped Hole5 ×2
    with Locations(*[(0, 0, i * F_0_80_TAPPED_HOLE5_AT_2_PITCH) for i in range(1, F_0_80_TAPPED_HOLE5_AT_2_COUNT)]):
        add(f_0_80_tapped_hole5, mode=Mode.SUBTRACT)


with BuildPart() as cut_extrude14_piece_2_3:
    add(cut_extrude14_piece_2_2.part)

    # Mirror20: cut by mirror20_tool
    add(mirror20_tool.part, mode=Mode.SUBTRACT)

    # Fillet3
    fillet3_edges = [cut_extrude14_piece_2_3.edges().sort_by_distance(p)[0] for p in [
        (63.9, -1.1775, 42.75),
        (-63.9, -1.1775, 42.75),
    ]]
    fillet(fillet3_edges, radius=FILLET3_R)


with BuildPart() as cut_extrude17_tool:
    # Sketch39 → Cut-Extrude17 (new body)
    with BuildSketch(Plane(origin=(0, 0, 0), x_dir=(1, 0, 0), z_dir=(0, 1, 0))):
        with Locations((1.301429901, 2.173123287)):
            Rectangle(SKETCH39_W, SKETCH39_H)
    extrude(amount=-CUT_EXTRUDE17_DEPTH)


with BuildPart() as cut_extrude13_piece_2_4:
    add(cut_extrude13_piece_2_3.part)

    # Cut-Extrude17: cut by cut_extrude17_tool
    add(cut_extrude17_tool.part, mode=Mode.SUBTRACT)

    # Sketch41 → Boss-Extrude4 (add)
    with BuildSketch(Plane(origin=(0, 0.79375, 0), x_dir=(1, 0, 0), z_dir=(0, 1, 0))):
        with BuildLine():
            Line((-36.675, 40), (-51.725, 40))
            ThreePointArc((-51.725, 40), (-55.737830983, 38.337830983), (-57.4, 34.325))
            Line((-57.4, 34.325), (-57.4, 31.5))
            add(Edge.make_bspline(
                [(-57.4, 31.5), (-57.4, 30.821154279), (-57.153175896, 29.447143081), (-56.167212938, 27.665270484), (-54.756272745, 26.202813776), (-52.455453984, 24.642995601), (-48.951428942, 23.350815489), (-44.2, 22.824592255), (-39.448571058, 23.350815489), (-35.944546016, 24.642995601), (-34.049903108, 25.927450724), (-33.266838465, 26.626794184), (-33.008008702, 26.88800086), (-32.892921678, 27.01127891)],
                knots=[0, 0, 0, 0, 0.196349541, 0.392699082, 0.589048623, 0.785398163, 1.178097245, 1.570796327, 1.963495408, 2.35619449, 2.552544031, 2.61024303, 2.659330415, 2.659330415, 2.659330415, 2.659330415], degree=3))
            ThreePointArc((-32.892921678, 27.01127891), (-30.7, 27.964062625), (-28.507078322, 27.01127891))
            add(Edge.make_bspline(
                [(-28.507078322, 27.01127891), (-28.391991298, 26.88800086), (-28.133161535, 26.626794184), (-27.350096892, 25.927450724), (-25.455453984, 24.642995601), (-21.951428942, 23.350815489), (-17.2, 22.824592255), (-12.448571058, 23.350815489), (-8.944546016, 24.642995601), (-6.643727255, 26.202813776), (-5.232787062, 27.665270484), (-4.246824104, 29.447143081), (-4, 30.821154279), (-4, 31.5)],
                knots=[0.482262239, 0.482262239, 0.482262239, 0.482262239, 0.531349624, 0.589048623, 0.785398163, 1.178097245, 1.570796327, 1.963495408, 2.35619449, 2.552544031, 2.748893572, 2.945243113, 3.141592654, 3.141592654, 3.141592654, 3.141592654], degree=3))
            Line((-4, 31.5), (-4, 34.325))
            ThreePointArc((-4, 34.325), (-5.662169017, 38.337830983), (-9.675, 40))
            Line((-9.675, 40), (-24.725, 40))
            ThreePointArc((-24.725, 40), (-26.829389725, 39.595405002), (-28.633717579, 38.439310621))
            ThreePointArc((-28.633717579, 38.439310621), (-30.7, 37.614276588), (-32.766282421, 38.439310621))
            ThreePointArc((-32.766282421, 38.439310621), (-34.570610275, 39.595405002), (-36.675, 40))
        make_face()
    extrude(amount=BOSS_EXTRUDE4_DEPTH)

    # Sketch42 → Cut-Extrude18 (cut)
    with BuildSketch(Plane.XZ.offset(-0.79375)):
        with Locations((-30.109683061, -33.262507806)):
            Rectangle(SKETCH42_W, SKETCH42_H)
    extrude(amount=CUT_EXTRUDE18_DEPTH, mode=Mode.SUBTRACT)


with BuildPart() as cut_extrude14_piece_1_2:
    add(cut_extrude14_piece_1_1.part)

    # Cut-Extrude17: cut by cut_extrude17_tool
    add(cut_extrude17_tool.part, mode=Mode.SUBTRACT)


with BuildPart() as cut_extrude14_piece_2_4:
    add(cut_extrude14_piece_2_3.part)

    # Cut-Extrude17: cut by cut_extrude17_tool
    add(cut_extrude17_tool.part, mode=Mode.SUBTRACT)


solid = cut_extrude13_piece_2_4.part
